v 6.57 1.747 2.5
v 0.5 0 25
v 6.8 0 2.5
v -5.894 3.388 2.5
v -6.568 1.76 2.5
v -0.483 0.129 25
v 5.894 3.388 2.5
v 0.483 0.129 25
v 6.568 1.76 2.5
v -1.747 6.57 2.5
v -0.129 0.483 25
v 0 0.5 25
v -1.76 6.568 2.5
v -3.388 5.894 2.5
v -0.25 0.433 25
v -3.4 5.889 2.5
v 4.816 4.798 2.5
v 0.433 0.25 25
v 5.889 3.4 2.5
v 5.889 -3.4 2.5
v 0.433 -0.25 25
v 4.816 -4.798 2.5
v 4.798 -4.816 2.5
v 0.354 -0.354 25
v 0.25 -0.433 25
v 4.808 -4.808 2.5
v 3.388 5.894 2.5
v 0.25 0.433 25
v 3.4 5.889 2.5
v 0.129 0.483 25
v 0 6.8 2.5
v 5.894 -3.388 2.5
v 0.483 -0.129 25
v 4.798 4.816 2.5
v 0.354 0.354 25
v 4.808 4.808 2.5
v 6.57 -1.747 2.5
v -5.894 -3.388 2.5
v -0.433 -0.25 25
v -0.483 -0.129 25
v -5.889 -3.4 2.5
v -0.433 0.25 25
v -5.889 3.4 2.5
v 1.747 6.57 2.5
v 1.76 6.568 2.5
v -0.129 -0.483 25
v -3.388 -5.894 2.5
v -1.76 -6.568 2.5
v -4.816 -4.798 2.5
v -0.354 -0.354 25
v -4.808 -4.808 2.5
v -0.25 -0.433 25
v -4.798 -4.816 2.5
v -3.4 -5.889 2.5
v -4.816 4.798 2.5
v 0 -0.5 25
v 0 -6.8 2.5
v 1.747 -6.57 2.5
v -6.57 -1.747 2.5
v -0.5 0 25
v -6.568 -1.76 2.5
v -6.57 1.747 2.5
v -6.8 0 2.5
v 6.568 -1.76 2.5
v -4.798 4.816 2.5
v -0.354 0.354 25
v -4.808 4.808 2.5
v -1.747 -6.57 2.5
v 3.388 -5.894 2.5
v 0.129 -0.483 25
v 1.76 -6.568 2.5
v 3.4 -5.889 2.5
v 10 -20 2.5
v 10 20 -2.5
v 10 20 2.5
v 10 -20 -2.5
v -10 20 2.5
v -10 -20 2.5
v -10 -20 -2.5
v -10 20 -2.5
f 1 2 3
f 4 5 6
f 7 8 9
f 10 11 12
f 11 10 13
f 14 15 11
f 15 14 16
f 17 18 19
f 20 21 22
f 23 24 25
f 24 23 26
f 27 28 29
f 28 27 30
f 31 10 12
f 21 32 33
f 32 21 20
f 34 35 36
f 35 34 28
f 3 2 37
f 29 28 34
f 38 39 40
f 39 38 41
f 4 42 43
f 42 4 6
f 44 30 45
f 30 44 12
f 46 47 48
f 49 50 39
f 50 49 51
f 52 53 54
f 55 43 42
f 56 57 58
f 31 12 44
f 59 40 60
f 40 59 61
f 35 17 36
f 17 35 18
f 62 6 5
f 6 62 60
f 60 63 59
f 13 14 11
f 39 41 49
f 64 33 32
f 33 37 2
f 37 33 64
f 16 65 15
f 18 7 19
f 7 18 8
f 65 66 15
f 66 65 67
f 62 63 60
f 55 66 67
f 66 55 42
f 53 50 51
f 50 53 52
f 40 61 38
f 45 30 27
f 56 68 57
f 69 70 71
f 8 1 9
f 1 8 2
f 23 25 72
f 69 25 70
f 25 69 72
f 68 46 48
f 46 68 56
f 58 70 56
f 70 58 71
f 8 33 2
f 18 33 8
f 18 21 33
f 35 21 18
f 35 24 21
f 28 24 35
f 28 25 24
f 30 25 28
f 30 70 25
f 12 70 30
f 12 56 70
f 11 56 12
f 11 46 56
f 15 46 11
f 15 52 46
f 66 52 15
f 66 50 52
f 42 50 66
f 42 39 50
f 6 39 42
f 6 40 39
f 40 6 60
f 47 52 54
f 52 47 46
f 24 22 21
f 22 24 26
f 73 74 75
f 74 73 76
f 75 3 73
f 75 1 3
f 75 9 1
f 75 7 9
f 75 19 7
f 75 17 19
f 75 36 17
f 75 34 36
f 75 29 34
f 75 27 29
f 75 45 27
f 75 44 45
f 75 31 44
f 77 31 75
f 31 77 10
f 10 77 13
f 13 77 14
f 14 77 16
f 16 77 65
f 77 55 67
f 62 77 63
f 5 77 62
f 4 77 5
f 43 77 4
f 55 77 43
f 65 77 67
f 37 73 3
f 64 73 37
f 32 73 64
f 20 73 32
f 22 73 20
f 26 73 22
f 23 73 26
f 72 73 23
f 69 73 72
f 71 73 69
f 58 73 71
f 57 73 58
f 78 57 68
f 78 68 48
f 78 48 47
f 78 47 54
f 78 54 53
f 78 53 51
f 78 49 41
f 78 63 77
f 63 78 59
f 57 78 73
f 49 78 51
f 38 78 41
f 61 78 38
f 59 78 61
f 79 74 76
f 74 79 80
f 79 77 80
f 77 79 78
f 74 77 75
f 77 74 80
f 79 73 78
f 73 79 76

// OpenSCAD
 cylinder(25, d1=15, r2=0.5);
 cube([20, 40, 5], center=true);
